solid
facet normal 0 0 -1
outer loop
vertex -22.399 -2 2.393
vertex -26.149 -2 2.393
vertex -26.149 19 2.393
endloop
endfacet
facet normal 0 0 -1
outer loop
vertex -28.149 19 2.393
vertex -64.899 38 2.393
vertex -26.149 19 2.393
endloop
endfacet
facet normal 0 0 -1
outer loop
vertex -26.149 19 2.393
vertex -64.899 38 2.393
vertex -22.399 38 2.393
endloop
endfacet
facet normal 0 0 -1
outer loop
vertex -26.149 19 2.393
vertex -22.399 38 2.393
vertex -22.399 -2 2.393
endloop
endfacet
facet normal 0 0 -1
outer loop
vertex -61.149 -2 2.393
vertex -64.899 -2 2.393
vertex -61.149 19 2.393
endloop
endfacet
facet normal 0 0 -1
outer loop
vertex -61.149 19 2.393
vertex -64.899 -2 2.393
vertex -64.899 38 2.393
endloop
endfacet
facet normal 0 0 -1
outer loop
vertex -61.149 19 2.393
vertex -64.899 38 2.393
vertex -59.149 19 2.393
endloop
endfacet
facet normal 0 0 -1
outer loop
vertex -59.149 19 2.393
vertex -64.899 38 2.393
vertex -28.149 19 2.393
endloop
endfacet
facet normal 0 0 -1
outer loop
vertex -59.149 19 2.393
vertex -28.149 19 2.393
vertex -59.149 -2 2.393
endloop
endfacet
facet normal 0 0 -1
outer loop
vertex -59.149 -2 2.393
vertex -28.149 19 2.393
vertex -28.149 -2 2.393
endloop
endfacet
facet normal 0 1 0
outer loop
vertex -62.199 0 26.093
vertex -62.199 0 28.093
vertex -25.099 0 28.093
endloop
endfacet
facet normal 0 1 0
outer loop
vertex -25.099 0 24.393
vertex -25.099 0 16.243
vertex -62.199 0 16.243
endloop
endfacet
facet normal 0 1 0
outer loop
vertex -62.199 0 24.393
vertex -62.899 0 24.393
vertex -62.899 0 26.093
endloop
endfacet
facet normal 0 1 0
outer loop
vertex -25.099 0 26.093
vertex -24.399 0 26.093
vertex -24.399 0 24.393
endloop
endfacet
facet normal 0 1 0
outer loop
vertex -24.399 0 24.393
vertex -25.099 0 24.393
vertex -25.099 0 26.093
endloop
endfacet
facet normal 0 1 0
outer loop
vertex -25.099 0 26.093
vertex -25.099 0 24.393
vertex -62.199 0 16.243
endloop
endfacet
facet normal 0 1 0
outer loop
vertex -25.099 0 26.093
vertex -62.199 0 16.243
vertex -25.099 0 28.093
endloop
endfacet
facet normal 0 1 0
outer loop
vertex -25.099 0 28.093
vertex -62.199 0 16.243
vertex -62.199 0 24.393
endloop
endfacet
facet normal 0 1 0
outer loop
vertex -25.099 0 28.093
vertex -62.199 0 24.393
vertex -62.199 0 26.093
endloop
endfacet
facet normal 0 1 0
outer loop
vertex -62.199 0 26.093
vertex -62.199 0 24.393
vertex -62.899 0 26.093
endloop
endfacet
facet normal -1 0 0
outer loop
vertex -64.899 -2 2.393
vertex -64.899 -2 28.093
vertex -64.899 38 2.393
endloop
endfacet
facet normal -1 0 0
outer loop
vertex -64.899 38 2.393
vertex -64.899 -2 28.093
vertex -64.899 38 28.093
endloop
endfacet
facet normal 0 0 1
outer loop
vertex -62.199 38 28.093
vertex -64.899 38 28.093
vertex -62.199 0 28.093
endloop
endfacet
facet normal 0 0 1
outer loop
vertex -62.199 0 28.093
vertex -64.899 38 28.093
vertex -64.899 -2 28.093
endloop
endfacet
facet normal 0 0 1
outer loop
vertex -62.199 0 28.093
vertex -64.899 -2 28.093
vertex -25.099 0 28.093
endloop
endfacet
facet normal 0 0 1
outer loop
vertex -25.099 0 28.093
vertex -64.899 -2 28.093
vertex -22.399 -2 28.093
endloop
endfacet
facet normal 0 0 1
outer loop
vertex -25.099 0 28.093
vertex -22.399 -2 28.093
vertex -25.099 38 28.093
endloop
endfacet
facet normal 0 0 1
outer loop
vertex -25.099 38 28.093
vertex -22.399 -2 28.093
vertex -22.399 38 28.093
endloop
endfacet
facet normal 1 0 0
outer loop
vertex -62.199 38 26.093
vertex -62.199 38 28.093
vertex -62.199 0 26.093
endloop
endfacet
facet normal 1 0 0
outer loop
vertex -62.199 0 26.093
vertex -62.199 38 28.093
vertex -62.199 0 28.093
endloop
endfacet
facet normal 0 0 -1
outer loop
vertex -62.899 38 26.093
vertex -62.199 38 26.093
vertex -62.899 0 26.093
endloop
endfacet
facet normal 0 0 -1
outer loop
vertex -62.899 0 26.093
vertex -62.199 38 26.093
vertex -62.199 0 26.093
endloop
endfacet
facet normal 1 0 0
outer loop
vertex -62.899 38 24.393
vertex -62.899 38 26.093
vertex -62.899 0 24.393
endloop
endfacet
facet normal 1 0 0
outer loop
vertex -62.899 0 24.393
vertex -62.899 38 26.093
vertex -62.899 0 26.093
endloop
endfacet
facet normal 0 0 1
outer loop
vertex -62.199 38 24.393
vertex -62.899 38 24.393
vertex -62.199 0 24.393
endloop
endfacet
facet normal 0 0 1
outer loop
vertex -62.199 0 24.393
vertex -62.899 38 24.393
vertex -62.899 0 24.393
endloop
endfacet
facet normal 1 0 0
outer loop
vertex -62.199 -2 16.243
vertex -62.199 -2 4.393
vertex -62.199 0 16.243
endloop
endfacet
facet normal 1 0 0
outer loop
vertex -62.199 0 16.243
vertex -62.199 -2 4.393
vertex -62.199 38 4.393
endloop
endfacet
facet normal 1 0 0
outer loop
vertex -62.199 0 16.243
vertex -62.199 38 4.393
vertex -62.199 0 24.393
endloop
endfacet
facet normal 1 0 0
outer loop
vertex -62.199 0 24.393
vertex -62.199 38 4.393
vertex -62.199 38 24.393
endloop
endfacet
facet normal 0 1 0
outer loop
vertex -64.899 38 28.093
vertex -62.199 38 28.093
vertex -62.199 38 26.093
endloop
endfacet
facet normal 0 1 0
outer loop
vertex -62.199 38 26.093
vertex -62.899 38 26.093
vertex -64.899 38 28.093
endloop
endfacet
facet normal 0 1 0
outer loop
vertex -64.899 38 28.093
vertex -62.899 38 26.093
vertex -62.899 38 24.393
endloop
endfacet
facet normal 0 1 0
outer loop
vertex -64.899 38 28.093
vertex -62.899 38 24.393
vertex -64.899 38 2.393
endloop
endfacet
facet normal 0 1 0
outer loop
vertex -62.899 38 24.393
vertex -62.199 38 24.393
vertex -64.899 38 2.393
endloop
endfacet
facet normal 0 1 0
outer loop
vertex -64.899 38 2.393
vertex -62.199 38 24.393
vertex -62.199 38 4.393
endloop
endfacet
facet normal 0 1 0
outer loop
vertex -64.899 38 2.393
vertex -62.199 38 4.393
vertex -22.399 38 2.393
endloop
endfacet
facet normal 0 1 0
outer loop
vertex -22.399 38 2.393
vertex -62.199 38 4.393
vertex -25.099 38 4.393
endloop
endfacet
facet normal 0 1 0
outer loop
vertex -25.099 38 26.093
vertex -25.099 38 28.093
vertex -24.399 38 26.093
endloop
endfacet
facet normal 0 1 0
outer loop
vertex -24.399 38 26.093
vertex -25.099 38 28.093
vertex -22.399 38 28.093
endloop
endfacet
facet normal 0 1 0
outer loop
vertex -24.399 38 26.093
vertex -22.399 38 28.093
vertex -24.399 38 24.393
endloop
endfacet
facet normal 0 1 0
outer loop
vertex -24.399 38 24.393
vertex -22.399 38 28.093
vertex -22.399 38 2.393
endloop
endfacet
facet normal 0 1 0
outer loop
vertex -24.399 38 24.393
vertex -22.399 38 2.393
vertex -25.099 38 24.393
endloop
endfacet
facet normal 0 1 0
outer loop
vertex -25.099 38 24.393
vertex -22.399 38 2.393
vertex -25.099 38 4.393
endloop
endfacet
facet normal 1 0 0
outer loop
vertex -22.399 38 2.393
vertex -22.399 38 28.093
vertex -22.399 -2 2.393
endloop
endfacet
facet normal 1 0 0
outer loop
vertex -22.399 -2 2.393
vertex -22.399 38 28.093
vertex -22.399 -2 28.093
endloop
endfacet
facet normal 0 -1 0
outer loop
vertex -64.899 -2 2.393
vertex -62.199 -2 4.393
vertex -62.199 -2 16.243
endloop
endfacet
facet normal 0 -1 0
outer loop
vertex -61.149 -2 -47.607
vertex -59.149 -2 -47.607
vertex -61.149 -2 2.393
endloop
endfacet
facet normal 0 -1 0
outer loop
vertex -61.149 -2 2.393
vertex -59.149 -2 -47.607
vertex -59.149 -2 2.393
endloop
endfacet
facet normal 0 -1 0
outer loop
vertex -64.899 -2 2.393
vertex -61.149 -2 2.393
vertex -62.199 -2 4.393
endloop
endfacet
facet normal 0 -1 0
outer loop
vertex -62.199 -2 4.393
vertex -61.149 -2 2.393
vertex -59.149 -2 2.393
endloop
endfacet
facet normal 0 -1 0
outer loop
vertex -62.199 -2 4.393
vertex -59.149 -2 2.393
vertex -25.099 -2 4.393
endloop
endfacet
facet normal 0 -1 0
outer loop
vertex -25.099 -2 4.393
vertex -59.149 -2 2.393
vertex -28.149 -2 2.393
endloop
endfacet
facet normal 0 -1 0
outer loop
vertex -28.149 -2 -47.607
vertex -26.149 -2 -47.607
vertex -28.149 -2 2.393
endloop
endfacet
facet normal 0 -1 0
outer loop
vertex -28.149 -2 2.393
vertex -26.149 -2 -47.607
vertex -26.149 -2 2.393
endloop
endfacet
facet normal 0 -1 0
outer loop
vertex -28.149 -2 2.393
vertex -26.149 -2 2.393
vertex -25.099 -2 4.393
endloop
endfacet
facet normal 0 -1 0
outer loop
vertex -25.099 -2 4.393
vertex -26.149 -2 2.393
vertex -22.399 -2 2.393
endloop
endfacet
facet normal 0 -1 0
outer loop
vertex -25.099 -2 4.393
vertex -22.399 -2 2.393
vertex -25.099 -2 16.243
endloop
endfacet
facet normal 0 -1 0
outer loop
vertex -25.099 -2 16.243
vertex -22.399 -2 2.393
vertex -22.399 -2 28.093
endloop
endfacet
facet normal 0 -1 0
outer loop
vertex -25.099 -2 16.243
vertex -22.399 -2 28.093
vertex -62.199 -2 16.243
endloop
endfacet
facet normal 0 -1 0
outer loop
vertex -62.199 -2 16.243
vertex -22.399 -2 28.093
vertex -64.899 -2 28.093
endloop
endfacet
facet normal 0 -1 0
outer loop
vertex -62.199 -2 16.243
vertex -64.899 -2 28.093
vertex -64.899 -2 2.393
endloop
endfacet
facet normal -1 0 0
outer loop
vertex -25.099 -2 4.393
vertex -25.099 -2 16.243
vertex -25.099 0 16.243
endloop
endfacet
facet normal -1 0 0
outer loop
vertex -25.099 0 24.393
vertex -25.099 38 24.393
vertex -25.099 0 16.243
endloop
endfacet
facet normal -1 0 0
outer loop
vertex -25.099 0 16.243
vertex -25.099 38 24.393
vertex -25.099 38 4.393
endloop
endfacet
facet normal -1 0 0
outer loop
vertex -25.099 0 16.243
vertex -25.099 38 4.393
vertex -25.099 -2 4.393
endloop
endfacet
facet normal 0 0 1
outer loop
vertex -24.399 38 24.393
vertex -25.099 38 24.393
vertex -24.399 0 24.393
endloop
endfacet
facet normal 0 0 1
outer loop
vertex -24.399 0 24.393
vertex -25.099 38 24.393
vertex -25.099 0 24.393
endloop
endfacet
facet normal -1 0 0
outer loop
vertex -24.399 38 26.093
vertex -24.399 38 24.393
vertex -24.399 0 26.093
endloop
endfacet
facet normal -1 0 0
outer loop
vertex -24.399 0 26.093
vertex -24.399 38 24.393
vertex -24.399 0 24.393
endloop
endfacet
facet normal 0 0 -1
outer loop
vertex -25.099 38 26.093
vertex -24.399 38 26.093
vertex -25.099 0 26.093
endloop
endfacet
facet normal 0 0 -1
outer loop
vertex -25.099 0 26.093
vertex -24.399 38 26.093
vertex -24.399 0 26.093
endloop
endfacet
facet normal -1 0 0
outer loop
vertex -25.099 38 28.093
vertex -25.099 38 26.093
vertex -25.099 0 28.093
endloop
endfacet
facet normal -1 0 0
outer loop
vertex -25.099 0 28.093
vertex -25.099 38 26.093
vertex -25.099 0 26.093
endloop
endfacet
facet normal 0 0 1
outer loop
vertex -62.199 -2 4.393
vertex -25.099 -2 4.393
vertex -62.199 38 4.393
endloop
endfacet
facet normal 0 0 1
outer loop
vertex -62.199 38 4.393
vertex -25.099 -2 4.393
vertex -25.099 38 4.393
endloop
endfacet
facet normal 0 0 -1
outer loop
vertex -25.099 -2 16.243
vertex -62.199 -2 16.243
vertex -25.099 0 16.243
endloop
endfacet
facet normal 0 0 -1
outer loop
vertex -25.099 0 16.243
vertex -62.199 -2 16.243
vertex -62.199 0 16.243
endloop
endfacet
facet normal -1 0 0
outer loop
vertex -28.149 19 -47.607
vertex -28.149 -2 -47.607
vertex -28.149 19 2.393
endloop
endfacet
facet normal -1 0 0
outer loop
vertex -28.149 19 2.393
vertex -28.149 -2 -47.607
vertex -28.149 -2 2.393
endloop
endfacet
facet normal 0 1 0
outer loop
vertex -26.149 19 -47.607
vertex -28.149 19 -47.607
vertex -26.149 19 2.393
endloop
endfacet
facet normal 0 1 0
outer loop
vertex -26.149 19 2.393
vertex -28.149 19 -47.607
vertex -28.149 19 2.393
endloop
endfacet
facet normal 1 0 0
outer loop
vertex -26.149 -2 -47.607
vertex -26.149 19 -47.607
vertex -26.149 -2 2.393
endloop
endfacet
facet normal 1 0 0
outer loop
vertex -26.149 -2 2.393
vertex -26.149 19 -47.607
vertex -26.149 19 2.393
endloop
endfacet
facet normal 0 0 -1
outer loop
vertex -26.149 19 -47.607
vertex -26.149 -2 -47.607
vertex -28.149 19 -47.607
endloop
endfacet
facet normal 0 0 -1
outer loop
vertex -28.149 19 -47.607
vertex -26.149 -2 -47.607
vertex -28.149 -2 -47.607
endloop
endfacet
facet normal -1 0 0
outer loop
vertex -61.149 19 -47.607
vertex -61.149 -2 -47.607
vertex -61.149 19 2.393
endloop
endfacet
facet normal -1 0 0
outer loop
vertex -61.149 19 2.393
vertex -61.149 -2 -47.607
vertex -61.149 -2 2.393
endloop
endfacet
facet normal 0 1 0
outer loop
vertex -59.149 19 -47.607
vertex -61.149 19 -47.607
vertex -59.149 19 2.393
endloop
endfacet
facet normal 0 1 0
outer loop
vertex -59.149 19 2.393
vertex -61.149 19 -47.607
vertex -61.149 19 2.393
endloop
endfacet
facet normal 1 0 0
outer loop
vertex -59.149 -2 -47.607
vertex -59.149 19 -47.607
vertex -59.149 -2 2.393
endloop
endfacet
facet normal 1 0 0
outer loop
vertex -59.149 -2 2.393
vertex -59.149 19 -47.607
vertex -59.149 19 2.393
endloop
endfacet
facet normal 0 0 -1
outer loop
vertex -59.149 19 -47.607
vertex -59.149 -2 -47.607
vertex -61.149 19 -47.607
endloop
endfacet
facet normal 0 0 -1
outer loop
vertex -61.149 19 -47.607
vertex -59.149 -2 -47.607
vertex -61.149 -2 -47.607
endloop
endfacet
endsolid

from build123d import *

# Parameters (mm, degrees)
BOSS_EXTRUDE1_DEPTH   = 38
BOSS_EXTRUDE1_2_DEPTH = 38
SKETCH2_W             = 42.5
SKETCH2_H             = 5.7
BOSS_EXTRUDE2_DEPTH   = 2
BOSS_EXTRUDE3_DEPTH   = 18
SKETCH4_W             = 42.5
SKETCH4_H             = 40
BOSS_EXTRUDE4_DEPTH   = 2
SKETCH5_W             = 37.1
SKETCH5_H             = 11.85
CUT_EXTRUDE1_DEPTH    = 81.281509747
SKETCH6_W             = 2
SKETCH6_H             = 21
BOSS_EXTRUDE6_DEPTH   = 50


with BuildPart() as part:
    # Sketch1 → Boss-Extrude1 (new body)
    with BuildSketch(Plane(origin=(0, 0, 0), x_dir=(1, 0, 0), z_dir=(0, 1, 0))):
        Polygon((-62.898983402, -26.09346473), (-62.898983402, -24.39346473), (-62.198983402, -24.39346473), (-62.198983402, -22.39346473), (-64.898983402, -22.39346473), (-64.898983402, -28.09346473), (-62.198983402, -28.09346473), (-62.198983402, -26.09346473), align=None)
    extrude(amount=BOSS_EXTRUDE1_DEPTH)



with BuildPart() as body_2:
    # Sketch1 → Boss-Extrude1 2 (new body)
    with BuildSketch(Plane(origin=(0, 0, 0), x_dir=(1, 0, 0), z_dir=(0, 1, 0))):
        Polygon((-25.098983402, -22.39346473), (-25.098983402, -24.39346473), (-24.398983402, -24.39346473), (-24.398983402, -26.09346473), (-25.098983402, -26.09346473), (-25.098983402, -28.09346473), (-22.398983402, -28.09346473), (-22.398983402, -22.39346473), align=None)
    extrude(amount=BOSS_EXTRUDE1_2_DEPTH)


with BuildPart() as part_1:
    add(part.part)

    add(body_2.part)  # Boss-Extrude2 merges body 2
    # Sketch2 → Boss-Extrude2 (add)
    with BuildSketch(Plane(origin=(0, 0, 0), x_dir=(1, 0, 0), z_dir=(0, 1, 0))):
        with Locations((-43.648983402, -25.24346473)):
            Rectangle(SKETCH2_W, SKETCH2_H)
    extrude(amount=-BOSS_EXTRUDE2_DEPTH)

    # Sketch3 → Boss-Extrude3 (add)
    with BuildSketch(Plane(origin=(0, 0, 22.39346473), x_dir=(-1, 0, 0), z_dir=(0, 0, -1))):
        Polygon((64.898983402, 38), (62.198983402, 38), (62.198983402, 0), (25.098983402, 0), (25.098983402, 38), (22.398983402, 38), (22.398983402, -2), (64.898983402, -2), align=None)
    extrude(amount=BOSS_EXTRUDE3_DEPTH)

    # Sketch4 → Boss-Extrude4 (add)
    with BuildSketch(Plane(origin=(0, 0, 4.39346473), x_dir=(-1, 0, 0), z_dir=(0, 0, -1))):
        with Locations((43.648983402, 18)):
            Rectangle(SKETCH4_W, SKETCH4_H)
    extrude(amount=BOSS_EXTRUDE4_DEPTH)

    # Sketch5 → Cut-Extrude1 (cut, through all)
    with BuildSketch(Plane(origin=(0, 0, 0), x_dir=(1, 0, 0), z_dir=(0, 1, 0))):
        with Locations((-43.648983402, -10.31846473)):
            Rectangle(SKETCH5_W, SKETCH5_H)
    extrude(amount=-CUT_EXTRUDE1_DEPTH, mode=Mode.SUBTRACT)

    # Sketch6 → Boss-Extrude6 (add)
    with BuildSketch(Plane(origin=(0, 0, 2.39346473), x_dir=(-1, 0, 0), z_dir=(0, 0, -1))):
        with Locations((27.148983402, 8.5)):
            Rectangle(SKETCH6_W, SKETCH6_H)
        with Locations((60.148983402, 8.5)):
            Rectangle(SKETCH6_W, SKETCH6_H)
    extrude(amount=BOSS_EXTRUDE6_DEPTH)


solid = part_1.part
